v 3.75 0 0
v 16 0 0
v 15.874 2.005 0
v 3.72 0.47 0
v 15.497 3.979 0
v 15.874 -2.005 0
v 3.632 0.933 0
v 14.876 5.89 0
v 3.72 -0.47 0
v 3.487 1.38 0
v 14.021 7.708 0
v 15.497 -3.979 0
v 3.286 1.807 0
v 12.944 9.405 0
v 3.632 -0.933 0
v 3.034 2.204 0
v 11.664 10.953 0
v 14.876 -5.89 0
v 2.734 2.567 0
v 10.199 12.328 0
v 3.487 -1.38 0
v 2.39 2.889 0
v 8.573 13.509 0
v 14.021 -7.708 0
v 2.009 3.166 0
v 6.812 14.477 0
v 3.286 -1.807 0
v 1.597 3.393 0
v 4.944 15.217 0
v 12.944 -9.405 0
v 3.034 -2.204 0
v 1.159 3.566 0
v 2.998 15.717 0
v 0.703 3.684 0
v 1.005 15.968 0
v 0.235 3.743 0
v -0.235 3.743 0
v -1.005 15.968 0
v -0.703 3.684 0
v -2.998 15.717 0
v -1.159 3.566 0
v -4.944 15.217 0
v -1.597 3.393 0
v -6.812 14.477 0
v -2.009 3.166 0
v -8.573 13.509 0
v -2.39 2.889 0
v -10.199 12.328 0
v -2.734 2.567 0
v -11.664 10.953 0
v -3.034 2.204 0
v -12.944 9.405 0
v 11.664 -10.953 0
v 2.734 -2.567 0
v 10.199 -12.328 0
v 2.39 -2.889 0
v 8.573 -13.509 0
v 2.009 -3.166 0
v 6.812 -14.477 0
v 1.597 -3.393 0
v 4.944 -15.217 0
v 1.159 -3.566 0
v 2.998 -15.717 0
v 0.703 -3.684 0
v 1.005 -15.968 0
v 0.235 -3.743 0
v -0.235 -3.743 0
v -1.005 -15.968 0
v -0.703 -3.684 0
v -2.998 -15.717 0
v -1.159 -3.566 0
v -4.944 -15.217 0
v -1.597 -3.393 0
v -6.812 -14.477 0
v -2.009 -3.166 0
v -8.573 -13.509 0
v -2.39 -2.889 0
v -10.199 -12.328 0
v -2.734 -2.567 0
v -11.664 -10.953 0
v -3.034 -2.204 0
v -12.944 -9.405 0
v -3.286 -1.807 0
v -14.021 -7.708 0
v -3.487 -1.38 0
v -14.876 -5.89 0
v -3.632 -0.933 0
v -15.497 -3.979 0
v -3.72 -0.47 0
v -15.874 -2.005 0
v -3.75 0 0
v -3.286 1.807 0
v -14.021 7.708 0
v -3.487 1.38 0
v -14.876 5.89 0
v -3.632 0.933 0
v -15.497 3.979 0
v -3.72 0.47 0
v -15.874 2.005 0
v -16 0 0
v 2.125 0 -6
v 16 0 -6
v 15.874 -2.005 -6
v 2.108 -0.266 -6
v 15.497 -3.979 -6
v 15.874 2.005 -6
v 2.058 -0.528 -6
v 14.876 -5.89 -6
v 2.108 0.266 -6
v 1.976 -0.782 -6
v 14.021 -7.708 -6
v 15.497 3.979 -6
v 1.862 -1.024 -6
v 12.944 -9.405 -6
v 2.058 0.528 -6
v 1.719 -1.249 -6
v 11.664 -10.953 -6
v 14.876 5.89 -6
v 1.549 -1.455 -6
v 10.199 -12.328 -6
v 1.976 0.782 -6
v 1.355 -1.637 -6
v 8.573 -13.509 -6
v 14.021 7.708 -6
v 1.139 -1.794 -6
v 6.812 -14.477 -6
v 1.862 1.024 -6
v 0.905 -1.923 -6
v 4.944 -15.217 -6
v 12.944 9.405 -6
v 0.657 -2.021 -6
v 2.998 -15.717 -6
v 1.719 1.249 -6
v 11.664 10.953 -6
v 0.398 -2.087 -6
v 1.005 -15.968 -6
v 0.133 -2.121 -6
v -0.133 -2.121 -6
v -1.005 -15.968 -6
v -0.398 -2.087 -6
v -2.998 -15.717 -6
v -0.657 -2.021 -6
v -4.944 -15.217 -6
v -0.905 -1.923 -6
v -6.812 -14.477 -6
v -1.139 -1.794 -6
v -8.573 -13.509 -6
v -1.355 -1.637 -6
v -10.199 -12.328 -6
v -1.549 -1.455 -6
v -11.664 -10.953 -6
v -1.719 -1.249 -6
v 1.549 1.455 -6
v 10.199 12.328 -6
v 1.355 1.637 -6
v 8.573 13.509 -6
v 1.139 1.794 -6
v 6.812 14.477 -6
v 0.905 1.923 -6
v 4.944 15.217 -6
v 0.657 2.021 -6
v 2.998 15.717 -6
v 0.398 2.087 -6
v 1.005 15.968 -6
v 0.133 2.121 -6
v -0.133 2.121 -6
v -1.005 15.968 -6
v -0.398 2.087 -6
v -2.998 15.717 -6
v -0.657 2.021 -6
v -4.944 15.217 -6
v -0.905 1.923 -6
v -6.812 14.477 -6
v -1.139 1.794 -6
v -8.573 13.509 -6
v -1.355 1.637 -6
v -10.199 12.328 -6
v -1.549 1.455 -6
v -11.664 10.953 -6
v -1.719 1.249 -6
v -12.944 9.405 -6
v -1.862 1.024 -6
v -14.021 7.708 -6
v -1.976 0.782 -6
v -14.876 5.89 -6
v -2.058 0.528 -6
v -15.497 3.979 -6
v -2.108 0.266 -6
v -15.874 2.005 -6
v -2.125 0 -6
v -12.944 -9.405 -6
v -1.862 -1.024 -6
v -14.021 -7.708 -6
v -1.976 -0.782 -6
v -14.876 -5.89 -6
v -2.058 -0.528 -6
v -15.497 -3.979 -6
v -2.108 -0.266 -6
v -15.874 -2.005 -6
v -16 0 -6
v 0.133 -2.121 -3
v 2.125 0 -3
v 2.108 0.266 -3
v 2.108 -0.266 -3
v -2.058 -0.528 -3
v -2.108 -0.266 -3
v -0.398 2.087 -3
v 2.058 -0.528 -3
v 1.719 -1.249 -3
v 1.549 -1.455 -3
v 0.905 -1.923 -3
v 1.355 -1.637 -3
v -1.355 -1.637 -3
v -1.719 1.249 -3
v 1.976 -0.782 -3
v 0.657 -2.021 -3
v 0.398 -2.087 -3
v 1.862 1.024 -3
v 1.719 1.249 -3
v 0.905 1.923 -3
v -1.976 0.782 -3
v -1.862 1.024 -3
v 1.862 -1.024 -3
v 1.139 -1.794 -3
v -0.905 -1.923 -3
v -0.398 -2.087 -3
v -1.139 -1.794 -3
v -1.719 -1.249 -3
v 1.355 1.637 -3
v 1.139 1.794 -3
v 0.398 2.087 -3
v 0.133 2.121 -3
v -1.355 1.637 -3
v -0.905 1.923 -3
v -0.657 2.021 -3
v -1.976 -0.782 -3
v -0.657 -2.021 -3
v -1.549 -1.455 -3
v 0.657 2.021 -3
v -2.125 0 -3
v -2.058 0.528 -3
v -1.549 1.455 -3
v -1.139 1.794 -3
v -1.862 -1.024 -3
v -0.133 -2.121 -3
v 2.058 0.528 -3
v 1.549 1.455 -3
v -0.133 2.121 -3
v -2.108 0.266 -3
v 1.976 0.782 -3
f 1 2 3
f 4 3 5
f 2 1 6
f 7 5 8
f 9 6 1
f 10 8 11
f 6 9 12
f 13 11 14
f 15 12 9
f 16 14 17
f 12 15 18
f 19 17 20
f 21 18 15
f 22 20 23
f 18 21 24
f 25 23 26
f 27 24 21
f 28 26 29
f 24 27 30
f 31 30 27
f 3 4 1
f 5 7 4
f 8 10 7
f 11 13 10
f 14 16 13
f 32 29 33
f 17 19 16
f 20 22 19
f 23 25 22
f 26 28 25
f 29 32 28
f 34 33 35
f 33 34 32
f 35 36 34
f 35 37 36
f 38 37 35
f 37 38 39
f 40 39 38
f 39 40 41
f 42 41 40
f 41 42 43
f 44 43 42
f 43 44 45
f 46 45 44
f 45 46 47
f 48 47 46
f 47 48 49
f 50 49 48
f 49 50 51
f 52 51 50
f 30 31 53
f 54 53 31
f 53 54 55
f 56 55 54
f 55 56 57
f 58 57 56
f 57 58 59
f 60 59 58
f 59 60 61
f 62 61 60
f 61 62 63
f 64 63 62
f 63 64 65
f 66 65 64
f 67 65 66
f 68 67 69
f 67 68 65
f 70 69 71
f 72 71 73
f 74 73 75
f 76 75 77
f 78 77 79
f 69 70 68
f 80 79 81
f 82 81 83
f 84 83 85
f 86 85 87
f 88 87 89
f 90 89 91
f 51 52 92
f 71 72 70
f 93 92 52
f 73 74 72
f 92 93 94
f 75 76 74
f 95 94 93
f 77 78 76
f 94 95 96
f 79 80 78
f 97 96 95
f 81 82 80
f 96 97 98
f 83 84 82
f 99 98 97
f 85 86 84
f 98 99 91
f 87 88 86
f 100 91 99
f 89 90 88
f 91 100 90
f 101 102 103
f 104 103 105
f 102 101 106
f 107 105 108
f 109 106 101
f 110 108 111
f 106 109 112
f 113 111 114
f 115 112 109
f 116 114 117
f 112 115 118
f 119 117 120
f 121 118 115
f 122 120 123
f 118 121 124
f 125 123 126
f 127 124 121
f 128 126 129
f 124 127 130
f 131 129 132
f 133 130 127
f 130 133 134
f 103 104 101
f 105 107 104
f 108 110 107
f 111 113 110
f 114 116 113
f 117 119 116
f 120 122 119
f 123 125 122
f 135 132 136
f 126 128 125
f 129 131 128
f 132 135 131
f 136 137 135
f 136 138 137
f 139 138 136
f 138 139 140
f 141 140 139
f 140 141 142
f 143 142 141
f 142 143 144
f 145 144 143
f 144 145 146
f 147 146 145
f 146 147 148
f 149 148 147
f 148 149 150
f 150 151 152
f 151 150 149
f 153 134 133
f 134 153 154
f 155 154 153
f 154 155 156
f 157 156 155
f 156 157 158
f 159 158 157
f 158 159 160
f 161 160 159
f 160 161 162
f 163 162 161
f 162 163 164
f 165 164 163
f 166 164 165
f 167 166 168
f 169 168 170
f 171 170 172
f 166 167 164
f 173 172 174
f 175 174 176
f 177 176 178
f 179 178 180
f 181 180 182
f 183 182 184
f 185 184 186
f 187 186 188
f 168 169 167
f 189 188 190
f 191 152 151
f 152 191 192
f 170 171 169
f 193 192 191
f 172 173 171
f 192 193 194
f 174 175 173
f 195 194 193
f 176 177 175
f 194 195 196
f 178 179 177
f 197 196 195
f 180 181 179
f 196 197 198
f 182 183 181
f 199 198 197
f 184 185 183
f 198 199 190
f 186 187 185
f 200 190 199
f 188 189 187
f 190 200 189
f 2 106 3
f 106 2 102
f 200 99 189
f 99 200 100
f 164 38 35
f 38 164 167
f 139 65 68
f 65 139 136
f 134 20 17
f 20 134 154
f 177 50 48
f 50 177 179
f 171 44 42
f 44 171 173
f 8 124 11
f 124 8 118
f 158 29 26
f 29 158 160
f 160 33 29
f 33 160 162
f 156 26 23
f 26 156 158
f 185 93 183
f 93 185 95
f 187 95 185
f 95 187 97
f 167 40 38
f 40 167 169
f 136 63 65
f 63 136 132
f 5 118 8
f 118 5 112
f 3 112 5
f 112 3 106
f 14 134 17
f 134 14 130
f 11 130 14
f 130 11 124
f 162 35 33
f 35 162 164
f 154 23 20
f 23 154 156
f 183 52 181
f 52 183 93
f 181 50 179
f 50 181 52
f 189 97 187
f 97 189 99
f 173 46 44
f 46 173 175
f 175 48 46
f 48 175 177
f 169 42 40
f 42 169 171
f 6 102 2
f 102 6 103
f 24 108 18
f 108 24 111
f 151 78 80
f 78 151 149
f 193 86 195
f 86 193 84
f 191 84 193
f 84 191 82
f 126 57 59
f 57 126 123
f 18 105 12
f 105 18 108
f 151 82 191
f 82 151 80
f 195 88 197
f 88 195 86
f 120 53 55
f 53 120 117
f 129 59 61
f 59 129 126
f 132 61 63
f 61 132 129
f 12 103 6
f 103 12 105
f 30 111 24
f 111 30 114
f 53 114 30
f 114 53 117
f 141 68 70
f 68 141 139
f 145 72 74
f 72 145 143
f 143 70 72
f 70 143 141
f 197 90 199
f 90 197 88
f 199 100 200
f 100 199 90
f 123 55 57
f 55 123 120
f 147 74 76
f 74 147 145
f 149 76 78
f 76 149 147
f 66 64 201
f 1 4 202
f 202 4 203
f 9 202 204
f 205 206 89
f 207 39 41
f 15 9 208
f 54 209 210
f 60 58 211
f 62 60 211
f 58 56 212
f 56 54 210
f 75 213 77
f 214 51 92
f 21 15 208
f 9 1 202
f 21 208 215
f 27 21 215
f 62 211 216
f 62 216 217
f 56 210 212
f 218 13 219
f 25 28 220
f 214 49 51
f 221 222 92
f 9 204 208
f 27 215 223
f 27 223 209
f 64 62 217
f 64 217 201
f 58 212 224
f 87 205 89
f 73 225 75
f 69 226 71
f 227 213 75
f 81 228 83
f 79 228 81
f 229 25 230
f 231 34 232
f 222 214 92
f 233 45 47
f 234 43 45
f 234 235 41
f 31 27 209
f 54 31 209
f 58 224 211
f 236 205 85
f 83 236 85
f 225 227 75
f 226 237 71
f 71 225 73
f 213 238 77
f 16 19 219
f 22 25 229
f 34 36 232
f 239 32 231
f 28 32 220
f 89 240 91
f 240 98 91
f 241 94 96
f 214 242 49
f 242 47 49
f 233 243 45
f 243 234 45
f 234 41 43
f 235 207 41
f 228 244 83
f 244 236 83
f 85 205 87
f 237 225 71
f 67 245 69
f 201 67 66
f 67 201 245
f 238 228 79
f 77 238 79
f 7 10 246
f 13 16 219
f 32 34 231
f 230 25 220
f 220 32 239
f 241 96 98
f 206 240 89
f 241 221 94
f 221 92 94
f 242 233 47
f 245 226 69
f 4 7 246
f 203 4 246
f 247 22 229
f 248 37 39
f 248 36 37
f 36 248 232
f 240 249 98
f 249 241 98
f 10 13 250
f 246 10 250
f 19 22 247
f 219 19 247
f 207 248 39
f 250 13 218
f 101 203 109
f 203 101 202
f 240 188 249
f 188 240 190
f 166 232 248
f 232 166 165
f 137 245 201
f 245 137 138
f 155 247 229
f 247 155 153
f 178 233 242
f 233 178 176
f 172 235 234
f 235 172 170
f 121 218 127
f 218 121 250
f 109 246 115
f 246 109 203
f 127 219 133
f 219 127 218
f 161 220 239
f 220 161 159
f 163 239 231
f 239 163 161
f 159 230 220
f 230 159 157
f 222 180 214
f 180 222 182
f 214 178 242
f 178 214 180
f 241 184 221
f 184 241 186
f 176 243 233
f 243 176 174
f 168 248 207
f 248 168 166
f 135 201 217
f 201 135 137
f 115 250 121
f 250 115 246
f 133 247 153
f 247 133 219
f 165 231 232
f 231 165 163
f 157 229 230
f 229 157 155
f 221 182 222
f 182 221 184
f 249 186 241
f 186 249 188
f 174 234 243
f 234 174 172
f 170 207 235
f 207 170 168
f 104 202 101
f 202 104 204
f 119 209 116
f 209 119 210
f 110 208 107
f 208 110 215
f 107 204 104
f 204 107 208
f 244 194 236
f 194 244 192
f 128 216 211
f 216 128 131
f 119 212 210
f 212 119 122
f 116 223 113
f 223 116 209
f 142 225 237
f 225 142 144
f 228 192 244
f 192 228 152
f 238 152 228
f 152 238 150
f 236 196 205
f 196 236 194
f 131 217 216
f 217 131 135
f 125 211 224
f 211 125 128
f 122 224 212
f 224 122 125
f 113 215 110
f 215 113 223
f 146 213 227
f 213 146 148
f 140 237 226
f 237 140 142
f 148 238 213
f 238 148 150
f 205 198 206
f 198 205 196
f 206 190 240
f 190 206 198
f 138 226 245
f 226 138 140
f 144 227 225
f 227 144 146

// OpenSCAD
$fn = 50;


difference() {
	union() {
		translate(v = [0, 0, -6.0000000000]) {
			cylinder(h = 6, r = 10.0000000000);
		}
		translate(v = [0, 0, -6.0000000000]) {
			cylinder(h = 6, r = 16.0000000000);
		}
	}
	union() {
		translate(v = [0, 0, 0]) {
			rotate(a = [0, 0, 0]) {
				difference() {
					union() {
						#translate(v = [0, 0, -6.0000000000]) {
							cylinder(h = 6, r = 2.0000000000);
						}
						#translate(v = [0, 0, -3]) {
							cylinder(h = 3, r1 = 2.1250000000, r2 = 3.7500000000);
						}
						#translate(v = [0, 0, -6.0000000000]) {
							cylinder(h = 6, r = 2.1250000000);
						}
						#translate(v = [0, 0, -6.0000000000]) {
							cylinder(h = 6, r = 2.0000000000);
						}
					}
					union();
				}
			}
		}
	}
}
